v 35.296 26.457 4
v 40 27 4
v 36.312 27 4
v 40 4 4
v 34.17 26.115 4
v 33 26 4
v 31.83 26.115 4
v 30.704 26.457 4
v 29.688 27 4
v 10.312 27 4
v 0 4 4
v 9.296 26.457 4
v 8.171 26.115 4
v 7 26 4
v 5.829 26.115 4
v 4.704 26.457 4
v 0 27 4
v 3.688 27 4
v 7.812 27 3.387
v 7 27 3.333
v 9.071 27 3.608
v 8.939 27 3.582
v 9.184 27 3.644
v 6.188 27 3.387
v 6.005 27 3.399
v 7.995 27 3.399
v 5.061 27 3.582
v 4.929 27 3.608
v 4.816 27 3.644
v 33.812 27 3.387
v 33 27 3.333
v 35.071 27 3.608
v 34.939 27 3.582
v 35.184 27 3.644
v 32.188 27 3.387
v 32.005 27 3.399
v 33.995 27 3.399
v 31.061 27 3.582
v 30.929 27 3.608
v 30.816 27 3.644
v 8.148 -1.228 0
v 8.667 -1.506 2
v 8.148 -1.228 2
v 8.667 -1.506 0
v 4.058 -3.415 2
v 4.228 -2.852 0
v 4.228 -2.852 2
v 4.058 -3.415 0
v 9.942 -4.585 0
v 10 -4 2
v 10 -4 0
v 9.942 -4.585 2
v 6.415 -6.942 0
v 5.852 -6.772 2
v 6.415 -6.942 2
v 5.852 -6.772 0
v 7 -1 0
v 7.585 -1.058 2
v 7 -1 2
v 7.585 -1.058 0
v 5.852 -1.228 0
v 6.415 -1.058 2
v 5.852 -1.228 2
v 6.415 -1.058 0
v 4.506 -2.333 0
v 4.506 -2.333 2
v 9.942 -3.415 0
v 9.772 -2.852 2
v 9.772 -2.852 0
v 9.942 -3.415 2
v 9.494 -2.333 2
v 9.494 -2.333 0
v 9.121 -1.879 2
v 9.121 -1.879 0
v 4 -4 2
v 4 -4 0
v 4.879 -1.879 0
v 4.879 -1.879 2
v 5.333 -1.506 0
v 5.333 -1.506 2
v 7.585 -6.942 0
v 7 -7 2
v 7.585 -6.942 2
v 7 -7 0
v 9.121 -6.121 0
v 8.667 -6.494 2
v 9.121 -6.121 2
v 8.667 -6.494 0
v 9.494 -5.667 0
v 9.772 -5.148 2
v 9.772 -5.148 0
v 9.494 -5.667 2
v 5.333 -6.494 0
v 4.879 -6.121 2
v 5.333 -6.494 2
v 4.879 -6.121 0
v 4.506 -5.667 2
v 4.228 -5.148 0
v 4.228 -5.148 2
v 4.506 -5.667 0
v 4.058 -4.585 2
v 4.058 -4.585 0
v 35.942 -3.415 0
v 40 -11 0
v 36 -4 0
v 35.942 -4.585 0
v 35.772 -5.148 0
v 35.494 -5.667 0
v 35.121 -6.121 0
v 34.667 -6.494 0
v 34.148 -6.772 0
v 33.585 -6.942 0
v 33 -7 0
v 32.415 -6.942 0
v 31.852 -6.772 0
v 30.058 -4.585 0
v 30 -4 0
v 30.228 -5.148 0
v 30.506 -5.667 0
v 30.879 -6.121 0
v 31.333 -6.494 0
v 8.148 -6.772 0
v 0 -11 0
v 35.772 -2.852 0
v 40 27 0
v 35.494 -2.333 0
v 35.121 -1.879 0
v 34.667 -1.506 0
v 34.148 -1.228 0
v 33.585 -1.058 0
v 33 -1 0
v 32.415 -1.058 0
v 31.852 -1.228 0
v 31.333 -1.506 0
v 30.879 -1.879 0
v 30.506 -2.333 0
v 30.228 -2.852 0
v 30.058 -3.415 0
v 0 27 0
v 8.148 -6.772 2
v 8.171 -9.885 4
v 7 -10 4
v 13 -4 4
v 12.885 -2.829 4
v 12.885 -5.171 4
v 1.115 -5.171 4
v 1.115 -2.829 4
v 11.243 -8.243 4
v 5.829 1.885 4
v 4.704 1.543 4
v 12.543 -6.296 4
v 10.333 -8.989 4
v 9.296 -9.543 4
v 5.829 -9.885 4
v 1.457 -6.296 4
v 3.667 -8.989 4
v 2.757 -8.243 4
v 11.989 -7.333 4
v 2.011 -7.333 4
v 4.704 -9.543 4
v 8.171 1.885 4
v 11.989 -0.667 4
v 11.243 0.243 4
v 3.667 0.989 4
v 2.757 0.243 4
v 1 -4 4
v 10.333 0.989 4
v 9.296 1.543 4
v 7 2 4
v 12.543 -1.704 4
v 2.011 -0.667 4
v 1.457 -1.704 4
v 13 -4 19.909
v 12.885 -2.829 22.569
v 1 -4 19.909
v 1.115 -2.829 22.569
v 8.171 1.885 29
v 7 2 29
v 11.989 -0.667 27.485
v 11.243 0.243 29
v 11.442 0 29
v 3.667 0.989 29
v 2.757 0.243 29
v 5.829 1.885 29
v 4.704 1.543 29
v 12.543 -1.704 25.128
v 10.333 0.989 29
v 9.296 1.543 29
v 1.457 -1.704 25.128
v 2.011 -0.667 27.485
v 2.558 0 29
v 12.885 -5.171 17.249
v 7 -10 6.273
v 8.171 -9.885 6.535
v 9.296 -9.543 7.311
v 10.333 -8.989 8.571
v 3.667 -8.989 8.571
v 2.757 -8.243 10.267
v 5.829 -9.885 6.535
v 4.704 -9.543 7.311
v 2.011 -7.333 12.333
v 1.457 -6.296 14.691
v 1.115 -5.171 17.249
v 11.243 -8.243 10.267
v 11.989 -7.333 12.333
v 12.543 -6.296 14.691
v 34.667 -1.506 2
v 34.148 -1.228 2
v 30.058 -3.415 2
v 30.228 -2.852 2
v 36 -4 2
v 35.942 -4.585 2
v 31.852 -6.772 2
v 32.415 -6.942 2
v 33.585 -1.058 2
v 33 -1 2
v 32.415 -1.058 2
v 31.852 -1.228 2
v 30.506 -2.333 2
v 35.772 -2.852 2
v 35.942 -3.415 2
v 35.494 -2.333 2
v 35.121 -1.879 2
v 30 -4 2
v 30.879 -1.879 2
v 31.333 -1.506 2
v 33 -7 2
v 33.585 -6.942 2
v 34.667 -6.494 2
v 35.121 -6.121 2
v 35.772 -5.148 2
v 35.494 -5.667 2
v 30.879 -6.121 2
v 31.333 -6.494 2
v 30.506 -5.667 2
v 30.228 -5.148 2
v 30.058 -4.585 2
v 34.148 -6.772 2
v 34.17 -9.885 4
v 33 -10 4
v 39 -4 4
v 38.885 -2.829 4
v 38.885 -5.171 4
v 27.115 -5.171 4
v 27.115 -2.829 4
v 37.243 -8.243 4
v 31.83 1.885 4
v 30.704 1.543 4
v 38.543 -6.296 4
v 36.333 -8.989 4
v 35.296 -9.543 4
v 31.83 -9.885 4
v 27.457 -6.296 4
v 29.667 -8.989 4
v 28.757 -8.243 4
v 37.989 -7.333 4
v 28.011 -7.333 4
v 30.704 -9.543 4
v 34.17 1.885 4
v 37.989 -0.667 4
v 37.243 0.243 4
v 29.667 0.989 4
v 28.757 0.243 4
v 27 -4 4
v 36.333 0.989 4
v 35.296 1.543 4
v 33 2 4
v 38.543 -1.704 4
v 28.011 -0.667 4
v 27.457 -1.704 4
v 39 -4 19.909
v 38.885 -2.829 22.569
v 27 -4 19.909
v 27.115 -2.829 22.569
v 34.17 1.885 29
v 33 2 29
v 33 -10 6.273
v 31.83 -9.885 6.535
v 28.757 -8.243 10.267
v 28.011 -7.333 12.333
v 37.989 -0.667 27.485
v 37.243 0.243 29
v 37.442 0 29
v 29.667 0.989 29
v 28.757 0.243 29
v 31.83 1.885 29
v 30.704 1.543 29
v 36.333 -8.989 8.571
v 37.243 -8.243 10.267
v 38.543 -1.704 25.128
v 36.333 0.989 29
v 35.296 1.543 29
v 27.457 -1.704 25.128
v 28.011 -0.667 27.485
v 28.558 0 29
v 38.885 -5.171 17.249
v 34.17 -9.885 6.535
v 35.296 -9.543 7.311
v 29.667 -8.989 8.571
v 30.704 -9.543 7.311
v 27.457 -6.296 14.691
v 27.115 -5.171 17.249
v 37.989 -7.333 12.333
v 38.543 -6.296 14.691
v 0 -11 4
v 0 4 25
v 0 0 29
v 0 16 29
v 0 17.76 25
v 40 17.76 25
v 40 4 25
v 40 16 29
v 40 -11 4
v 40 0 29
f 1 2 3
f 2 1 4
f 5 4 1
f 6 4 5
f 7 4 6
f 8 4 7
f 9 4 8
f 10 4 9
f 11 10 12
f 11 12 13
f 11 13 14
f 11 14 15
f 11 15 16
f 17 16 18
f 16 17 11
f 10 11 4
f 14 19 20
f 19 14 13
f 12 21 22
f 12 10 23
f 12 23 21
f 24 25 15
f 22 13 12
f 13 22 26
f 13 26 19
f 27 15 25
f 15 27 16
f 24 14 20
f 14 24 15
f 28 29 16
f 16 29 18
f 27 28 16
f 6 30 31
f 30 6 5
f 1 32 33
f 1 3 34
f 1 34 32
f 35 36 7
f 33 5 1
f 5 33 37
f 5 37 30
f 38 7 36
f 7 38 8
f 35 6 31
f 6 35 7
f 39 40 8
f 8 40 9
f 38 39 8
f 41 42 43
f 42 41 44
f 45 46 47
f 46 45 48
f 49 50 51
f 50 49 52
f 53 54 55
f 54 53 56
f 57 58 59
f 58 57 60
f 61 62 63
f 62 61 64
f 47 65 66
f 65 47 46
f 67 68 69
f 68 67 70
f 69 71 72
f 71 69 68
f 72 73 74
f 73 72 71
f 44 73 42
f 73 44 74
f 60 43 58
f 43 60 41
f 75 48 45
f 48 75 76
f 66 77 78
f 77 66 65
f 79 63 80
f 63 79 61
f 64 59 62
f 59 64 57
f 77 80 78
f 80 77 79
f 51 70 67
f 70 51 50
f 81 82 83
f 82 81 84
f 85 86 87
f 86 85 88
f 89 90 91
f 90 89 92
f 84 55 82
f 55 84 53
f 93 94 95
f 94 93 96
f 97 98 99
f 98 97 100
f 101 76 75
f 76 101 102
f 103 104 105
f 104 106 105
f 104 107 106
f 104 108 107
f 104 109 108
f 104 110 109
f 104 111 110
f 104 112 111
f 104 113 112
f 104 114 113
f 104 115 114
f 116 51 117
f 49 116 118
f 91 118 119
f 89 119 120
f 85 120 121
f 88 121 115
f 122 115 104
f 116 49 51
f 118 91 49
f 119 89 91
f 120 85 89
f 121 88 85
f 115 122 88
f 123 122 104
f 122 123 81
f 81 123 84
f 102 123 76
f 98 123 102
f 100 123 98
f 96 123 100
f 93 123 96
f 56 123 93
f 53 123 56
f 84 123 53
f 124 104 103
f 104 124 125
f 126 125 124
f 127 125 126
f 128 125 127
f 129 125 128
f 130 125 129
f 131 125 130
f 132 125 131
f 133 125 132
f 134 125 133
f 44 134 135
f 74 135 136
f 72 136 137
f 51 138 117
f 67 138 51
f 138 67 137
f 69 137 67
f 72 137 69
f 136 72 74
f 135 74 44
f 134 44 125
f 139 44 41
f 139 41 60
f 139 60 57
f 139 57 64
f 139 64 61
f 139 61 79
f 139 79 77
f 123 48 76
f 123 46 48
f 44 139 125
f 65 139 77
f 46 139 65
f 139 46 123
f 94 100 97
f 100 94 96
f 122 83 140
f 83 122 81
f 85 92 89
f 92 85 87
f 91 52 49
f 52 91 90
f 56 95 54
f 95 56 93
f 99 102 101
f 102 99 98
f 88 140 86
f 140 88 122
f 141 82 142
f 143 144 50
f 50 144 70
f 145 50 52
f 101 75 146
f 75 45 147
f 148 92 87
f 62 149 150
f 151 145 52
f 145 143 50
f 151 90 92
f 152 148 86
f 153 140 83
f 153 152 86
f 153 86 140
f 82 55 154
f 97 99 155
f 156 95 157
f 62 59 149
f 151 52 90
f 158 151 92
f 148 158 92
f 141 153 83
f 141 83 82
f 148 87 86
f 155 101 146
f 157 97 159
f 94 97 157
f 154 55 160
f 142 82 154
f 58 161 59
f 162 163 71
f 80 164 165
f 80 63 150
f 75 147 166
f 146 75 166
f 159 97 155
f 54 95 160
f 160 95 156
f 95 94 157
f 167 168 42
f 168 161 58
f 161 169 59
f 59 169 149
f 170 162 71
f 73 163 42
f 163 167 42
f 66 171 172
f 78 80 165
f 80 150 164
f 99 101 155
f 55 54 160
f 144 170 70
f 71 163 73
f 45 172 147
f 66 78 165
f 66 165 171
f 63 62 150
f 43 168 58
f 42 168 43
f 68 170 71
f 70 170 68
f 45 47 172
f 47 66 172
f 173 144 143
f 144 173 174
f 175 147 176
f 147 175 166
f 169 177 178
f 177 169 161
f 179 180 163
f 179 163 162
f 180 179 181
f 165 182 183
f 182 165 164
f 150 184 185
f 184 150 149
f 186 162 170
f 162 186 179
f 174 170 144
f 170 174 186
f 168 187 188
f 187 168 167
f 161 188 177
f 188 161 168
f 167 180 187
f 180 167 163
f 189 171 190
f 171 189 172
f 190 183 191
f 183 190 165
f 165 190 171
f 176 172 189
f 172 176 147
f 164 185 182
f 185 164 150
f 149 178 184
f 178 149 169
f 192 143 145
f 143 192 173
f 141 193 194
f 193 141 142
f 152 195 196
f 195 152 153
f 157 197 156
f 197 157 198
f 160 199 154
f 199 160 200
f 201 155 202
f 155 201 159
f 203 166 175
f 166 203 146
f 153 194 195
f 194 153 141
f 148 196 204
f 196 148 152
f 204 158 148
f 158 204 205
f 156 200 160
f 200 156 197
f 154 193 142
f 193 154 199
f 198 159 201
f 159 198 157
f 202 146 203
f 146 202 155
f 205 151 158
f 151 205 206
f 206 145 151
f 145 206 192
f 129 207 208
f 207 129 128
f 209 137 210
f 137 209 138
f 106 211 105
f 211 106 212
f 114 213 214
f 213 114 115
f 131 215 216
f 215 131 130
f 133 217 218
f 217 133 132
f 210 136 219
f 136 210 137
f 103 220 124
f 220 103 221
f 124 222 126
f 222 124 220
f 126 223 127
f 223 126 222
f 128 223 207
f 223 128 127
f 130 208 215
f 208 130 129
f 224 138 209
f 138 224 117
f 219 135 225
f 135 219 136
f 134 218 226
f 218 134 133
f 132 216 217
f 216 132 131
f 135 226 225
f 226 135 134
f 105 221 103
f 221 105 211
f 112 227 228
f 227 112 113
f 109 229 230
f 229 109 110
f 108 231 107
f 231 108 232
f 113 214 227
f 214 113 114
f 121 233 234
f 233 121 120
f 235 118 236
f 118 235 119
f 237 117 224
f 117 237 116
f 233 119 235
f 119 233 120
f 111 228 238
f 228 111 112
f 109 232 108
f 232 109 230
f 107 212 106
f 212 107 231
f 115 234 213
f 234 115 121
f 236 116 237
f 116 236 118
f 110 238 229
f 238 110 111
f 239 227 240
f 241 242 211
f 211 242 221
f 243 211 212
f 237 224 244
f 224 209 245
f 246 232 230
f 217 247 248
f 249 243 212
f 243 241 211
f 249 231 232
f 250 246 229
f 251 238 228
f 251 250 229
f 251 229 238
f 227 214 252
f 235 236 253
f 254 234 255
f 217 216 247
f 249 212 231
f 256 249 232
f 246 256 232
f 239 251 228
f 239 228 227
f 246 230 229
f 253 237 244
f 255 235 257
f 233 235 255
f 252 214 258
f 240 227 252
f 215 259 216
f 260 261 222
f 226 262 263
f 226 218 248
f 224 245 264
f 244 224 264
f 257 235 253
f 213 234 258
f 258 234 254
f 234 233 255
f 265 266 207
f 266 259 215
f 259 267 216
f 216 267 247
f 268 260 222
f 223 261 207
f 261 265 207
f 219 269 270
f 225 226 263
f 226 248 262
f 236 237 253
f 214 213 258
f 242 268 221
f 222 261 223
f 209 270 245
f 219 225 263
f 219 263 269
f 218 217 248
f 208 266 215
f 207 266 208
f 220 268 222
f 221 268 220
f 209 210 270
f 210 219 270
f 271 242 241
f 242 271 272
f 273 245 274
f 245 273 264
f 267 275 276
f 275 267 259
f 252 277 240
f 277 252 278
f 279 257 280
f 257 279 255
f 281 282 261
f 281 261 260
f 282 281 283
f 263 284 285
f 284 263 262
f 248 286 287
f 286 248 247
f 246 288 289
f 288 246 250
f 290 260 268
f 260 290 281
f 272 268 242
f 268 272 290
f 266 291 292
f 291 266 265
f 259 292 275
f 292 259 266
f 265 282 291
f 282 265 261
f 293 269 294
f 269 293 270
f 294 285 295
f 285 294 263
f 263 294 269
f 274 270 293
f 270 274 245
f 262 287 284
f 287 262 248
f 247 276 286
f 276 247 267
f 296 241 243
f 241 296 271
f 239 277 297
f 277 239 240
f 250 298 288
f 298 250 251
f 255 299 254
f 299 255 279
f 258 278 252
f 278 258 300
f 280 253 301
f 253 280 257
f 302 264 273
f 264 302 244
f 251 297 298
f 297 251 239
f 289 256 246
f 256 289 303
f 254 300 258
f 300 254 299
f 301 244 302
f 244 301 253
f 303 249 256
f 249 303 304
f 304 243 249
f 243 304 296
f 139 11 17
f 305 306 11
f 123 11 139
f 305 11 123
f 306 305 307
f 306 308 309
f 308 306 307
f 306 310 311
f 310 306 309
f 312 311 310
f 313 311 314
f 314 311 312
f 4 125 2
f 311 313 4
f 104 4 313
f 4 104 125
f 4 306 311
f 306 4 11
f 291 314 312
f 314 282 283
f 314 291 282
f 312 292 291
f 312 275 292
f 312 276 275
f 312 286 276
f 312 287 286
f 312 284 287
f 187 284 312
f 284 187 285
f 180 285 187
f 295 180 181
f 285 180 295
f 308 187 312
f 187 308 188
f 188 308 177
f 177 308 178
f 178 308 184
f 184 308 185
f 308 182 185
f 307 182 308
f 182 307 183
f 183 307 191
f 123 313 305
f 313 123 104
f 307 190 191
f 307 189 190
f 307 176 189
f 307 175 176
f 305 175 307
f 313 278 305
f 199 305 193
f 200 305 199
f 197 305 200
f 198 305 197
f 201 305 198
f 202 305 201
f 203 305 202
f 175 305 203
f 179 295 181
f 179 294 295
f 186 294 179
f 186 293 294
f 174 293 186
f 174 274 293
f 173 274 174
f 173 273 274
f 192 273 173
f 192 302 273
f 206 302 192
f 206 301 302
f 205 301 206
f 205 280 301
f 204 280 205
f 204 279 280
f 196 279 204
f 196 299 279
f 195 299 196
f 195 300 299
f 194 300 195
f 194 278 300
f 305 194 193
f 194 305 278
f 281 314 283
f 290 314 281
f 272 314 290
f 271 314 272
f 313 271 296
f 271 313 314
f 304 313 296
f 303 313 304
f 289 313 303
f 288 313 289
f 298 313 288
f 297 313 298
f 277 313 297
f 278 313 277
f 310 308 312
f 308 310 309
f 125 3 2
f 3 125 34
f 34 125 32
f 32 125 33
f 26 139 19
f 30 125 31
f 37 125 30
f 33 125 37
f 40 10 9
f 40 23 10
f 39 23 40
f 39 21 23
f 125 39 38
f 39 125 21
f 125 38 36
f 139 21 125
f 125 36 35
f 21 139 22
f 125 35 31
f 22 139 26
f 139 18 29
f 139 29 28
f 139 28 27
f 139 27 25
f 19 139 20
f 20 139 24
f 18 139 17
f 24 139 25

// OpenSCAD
$fn=32;

laptop_height       = 21;
connector_width     = 8;
connector_length    = 40;
wall                = 4;
screw_diameter      = 3;

connector(connector_length,connector_width,laptop_height,wall,screw_diameter);

module connector(l,w,h,wall,s){
    extra = s+2*wall;
    difference(){
        hull(){
            cube([l,w,h]+[0,2*wall,2*wall]);
            translate([0,-extra,0]) cube([l,w+2*wall+2*extra,wall]);
        }
        union(){
            translate([0,wall,wall]) cube([l,w+extra+wall,h]);
            screw_holes(screw_diameter,wall,connector_width,connector_length);
        }
    }
}

//#screw_holes(screw_diameter,wall,connector_width,connector_length);

module screw_holes(s,wall,w,l){
    
    module screw_hole(s,wall){
        cylinder(wall,s,s);
        translate([0,0,wall/2])
            cylinder(wall/2,s,2*s);
    }
    
    translate([s+wall,-wall,0]){
        screw_hole(s,wall);
        translate([0,0,wall])
            cylinder(laptop_height+2*wall,2*s,2*s);
    }
    
    translate([s+wall,l-2*wall,0]){
        screw_hole(s,wall);
        
    }
    translate([l-s-wall,- wall,0]){
        #screw_hole(s,wall);
        translate([0,0,wall])
            cylinder(laptop_height+2*wall,2*s,2*s);
    }
    
    translate([l-s-wall,l-2*wall,0])
        screw_hole(s,wall);
}
